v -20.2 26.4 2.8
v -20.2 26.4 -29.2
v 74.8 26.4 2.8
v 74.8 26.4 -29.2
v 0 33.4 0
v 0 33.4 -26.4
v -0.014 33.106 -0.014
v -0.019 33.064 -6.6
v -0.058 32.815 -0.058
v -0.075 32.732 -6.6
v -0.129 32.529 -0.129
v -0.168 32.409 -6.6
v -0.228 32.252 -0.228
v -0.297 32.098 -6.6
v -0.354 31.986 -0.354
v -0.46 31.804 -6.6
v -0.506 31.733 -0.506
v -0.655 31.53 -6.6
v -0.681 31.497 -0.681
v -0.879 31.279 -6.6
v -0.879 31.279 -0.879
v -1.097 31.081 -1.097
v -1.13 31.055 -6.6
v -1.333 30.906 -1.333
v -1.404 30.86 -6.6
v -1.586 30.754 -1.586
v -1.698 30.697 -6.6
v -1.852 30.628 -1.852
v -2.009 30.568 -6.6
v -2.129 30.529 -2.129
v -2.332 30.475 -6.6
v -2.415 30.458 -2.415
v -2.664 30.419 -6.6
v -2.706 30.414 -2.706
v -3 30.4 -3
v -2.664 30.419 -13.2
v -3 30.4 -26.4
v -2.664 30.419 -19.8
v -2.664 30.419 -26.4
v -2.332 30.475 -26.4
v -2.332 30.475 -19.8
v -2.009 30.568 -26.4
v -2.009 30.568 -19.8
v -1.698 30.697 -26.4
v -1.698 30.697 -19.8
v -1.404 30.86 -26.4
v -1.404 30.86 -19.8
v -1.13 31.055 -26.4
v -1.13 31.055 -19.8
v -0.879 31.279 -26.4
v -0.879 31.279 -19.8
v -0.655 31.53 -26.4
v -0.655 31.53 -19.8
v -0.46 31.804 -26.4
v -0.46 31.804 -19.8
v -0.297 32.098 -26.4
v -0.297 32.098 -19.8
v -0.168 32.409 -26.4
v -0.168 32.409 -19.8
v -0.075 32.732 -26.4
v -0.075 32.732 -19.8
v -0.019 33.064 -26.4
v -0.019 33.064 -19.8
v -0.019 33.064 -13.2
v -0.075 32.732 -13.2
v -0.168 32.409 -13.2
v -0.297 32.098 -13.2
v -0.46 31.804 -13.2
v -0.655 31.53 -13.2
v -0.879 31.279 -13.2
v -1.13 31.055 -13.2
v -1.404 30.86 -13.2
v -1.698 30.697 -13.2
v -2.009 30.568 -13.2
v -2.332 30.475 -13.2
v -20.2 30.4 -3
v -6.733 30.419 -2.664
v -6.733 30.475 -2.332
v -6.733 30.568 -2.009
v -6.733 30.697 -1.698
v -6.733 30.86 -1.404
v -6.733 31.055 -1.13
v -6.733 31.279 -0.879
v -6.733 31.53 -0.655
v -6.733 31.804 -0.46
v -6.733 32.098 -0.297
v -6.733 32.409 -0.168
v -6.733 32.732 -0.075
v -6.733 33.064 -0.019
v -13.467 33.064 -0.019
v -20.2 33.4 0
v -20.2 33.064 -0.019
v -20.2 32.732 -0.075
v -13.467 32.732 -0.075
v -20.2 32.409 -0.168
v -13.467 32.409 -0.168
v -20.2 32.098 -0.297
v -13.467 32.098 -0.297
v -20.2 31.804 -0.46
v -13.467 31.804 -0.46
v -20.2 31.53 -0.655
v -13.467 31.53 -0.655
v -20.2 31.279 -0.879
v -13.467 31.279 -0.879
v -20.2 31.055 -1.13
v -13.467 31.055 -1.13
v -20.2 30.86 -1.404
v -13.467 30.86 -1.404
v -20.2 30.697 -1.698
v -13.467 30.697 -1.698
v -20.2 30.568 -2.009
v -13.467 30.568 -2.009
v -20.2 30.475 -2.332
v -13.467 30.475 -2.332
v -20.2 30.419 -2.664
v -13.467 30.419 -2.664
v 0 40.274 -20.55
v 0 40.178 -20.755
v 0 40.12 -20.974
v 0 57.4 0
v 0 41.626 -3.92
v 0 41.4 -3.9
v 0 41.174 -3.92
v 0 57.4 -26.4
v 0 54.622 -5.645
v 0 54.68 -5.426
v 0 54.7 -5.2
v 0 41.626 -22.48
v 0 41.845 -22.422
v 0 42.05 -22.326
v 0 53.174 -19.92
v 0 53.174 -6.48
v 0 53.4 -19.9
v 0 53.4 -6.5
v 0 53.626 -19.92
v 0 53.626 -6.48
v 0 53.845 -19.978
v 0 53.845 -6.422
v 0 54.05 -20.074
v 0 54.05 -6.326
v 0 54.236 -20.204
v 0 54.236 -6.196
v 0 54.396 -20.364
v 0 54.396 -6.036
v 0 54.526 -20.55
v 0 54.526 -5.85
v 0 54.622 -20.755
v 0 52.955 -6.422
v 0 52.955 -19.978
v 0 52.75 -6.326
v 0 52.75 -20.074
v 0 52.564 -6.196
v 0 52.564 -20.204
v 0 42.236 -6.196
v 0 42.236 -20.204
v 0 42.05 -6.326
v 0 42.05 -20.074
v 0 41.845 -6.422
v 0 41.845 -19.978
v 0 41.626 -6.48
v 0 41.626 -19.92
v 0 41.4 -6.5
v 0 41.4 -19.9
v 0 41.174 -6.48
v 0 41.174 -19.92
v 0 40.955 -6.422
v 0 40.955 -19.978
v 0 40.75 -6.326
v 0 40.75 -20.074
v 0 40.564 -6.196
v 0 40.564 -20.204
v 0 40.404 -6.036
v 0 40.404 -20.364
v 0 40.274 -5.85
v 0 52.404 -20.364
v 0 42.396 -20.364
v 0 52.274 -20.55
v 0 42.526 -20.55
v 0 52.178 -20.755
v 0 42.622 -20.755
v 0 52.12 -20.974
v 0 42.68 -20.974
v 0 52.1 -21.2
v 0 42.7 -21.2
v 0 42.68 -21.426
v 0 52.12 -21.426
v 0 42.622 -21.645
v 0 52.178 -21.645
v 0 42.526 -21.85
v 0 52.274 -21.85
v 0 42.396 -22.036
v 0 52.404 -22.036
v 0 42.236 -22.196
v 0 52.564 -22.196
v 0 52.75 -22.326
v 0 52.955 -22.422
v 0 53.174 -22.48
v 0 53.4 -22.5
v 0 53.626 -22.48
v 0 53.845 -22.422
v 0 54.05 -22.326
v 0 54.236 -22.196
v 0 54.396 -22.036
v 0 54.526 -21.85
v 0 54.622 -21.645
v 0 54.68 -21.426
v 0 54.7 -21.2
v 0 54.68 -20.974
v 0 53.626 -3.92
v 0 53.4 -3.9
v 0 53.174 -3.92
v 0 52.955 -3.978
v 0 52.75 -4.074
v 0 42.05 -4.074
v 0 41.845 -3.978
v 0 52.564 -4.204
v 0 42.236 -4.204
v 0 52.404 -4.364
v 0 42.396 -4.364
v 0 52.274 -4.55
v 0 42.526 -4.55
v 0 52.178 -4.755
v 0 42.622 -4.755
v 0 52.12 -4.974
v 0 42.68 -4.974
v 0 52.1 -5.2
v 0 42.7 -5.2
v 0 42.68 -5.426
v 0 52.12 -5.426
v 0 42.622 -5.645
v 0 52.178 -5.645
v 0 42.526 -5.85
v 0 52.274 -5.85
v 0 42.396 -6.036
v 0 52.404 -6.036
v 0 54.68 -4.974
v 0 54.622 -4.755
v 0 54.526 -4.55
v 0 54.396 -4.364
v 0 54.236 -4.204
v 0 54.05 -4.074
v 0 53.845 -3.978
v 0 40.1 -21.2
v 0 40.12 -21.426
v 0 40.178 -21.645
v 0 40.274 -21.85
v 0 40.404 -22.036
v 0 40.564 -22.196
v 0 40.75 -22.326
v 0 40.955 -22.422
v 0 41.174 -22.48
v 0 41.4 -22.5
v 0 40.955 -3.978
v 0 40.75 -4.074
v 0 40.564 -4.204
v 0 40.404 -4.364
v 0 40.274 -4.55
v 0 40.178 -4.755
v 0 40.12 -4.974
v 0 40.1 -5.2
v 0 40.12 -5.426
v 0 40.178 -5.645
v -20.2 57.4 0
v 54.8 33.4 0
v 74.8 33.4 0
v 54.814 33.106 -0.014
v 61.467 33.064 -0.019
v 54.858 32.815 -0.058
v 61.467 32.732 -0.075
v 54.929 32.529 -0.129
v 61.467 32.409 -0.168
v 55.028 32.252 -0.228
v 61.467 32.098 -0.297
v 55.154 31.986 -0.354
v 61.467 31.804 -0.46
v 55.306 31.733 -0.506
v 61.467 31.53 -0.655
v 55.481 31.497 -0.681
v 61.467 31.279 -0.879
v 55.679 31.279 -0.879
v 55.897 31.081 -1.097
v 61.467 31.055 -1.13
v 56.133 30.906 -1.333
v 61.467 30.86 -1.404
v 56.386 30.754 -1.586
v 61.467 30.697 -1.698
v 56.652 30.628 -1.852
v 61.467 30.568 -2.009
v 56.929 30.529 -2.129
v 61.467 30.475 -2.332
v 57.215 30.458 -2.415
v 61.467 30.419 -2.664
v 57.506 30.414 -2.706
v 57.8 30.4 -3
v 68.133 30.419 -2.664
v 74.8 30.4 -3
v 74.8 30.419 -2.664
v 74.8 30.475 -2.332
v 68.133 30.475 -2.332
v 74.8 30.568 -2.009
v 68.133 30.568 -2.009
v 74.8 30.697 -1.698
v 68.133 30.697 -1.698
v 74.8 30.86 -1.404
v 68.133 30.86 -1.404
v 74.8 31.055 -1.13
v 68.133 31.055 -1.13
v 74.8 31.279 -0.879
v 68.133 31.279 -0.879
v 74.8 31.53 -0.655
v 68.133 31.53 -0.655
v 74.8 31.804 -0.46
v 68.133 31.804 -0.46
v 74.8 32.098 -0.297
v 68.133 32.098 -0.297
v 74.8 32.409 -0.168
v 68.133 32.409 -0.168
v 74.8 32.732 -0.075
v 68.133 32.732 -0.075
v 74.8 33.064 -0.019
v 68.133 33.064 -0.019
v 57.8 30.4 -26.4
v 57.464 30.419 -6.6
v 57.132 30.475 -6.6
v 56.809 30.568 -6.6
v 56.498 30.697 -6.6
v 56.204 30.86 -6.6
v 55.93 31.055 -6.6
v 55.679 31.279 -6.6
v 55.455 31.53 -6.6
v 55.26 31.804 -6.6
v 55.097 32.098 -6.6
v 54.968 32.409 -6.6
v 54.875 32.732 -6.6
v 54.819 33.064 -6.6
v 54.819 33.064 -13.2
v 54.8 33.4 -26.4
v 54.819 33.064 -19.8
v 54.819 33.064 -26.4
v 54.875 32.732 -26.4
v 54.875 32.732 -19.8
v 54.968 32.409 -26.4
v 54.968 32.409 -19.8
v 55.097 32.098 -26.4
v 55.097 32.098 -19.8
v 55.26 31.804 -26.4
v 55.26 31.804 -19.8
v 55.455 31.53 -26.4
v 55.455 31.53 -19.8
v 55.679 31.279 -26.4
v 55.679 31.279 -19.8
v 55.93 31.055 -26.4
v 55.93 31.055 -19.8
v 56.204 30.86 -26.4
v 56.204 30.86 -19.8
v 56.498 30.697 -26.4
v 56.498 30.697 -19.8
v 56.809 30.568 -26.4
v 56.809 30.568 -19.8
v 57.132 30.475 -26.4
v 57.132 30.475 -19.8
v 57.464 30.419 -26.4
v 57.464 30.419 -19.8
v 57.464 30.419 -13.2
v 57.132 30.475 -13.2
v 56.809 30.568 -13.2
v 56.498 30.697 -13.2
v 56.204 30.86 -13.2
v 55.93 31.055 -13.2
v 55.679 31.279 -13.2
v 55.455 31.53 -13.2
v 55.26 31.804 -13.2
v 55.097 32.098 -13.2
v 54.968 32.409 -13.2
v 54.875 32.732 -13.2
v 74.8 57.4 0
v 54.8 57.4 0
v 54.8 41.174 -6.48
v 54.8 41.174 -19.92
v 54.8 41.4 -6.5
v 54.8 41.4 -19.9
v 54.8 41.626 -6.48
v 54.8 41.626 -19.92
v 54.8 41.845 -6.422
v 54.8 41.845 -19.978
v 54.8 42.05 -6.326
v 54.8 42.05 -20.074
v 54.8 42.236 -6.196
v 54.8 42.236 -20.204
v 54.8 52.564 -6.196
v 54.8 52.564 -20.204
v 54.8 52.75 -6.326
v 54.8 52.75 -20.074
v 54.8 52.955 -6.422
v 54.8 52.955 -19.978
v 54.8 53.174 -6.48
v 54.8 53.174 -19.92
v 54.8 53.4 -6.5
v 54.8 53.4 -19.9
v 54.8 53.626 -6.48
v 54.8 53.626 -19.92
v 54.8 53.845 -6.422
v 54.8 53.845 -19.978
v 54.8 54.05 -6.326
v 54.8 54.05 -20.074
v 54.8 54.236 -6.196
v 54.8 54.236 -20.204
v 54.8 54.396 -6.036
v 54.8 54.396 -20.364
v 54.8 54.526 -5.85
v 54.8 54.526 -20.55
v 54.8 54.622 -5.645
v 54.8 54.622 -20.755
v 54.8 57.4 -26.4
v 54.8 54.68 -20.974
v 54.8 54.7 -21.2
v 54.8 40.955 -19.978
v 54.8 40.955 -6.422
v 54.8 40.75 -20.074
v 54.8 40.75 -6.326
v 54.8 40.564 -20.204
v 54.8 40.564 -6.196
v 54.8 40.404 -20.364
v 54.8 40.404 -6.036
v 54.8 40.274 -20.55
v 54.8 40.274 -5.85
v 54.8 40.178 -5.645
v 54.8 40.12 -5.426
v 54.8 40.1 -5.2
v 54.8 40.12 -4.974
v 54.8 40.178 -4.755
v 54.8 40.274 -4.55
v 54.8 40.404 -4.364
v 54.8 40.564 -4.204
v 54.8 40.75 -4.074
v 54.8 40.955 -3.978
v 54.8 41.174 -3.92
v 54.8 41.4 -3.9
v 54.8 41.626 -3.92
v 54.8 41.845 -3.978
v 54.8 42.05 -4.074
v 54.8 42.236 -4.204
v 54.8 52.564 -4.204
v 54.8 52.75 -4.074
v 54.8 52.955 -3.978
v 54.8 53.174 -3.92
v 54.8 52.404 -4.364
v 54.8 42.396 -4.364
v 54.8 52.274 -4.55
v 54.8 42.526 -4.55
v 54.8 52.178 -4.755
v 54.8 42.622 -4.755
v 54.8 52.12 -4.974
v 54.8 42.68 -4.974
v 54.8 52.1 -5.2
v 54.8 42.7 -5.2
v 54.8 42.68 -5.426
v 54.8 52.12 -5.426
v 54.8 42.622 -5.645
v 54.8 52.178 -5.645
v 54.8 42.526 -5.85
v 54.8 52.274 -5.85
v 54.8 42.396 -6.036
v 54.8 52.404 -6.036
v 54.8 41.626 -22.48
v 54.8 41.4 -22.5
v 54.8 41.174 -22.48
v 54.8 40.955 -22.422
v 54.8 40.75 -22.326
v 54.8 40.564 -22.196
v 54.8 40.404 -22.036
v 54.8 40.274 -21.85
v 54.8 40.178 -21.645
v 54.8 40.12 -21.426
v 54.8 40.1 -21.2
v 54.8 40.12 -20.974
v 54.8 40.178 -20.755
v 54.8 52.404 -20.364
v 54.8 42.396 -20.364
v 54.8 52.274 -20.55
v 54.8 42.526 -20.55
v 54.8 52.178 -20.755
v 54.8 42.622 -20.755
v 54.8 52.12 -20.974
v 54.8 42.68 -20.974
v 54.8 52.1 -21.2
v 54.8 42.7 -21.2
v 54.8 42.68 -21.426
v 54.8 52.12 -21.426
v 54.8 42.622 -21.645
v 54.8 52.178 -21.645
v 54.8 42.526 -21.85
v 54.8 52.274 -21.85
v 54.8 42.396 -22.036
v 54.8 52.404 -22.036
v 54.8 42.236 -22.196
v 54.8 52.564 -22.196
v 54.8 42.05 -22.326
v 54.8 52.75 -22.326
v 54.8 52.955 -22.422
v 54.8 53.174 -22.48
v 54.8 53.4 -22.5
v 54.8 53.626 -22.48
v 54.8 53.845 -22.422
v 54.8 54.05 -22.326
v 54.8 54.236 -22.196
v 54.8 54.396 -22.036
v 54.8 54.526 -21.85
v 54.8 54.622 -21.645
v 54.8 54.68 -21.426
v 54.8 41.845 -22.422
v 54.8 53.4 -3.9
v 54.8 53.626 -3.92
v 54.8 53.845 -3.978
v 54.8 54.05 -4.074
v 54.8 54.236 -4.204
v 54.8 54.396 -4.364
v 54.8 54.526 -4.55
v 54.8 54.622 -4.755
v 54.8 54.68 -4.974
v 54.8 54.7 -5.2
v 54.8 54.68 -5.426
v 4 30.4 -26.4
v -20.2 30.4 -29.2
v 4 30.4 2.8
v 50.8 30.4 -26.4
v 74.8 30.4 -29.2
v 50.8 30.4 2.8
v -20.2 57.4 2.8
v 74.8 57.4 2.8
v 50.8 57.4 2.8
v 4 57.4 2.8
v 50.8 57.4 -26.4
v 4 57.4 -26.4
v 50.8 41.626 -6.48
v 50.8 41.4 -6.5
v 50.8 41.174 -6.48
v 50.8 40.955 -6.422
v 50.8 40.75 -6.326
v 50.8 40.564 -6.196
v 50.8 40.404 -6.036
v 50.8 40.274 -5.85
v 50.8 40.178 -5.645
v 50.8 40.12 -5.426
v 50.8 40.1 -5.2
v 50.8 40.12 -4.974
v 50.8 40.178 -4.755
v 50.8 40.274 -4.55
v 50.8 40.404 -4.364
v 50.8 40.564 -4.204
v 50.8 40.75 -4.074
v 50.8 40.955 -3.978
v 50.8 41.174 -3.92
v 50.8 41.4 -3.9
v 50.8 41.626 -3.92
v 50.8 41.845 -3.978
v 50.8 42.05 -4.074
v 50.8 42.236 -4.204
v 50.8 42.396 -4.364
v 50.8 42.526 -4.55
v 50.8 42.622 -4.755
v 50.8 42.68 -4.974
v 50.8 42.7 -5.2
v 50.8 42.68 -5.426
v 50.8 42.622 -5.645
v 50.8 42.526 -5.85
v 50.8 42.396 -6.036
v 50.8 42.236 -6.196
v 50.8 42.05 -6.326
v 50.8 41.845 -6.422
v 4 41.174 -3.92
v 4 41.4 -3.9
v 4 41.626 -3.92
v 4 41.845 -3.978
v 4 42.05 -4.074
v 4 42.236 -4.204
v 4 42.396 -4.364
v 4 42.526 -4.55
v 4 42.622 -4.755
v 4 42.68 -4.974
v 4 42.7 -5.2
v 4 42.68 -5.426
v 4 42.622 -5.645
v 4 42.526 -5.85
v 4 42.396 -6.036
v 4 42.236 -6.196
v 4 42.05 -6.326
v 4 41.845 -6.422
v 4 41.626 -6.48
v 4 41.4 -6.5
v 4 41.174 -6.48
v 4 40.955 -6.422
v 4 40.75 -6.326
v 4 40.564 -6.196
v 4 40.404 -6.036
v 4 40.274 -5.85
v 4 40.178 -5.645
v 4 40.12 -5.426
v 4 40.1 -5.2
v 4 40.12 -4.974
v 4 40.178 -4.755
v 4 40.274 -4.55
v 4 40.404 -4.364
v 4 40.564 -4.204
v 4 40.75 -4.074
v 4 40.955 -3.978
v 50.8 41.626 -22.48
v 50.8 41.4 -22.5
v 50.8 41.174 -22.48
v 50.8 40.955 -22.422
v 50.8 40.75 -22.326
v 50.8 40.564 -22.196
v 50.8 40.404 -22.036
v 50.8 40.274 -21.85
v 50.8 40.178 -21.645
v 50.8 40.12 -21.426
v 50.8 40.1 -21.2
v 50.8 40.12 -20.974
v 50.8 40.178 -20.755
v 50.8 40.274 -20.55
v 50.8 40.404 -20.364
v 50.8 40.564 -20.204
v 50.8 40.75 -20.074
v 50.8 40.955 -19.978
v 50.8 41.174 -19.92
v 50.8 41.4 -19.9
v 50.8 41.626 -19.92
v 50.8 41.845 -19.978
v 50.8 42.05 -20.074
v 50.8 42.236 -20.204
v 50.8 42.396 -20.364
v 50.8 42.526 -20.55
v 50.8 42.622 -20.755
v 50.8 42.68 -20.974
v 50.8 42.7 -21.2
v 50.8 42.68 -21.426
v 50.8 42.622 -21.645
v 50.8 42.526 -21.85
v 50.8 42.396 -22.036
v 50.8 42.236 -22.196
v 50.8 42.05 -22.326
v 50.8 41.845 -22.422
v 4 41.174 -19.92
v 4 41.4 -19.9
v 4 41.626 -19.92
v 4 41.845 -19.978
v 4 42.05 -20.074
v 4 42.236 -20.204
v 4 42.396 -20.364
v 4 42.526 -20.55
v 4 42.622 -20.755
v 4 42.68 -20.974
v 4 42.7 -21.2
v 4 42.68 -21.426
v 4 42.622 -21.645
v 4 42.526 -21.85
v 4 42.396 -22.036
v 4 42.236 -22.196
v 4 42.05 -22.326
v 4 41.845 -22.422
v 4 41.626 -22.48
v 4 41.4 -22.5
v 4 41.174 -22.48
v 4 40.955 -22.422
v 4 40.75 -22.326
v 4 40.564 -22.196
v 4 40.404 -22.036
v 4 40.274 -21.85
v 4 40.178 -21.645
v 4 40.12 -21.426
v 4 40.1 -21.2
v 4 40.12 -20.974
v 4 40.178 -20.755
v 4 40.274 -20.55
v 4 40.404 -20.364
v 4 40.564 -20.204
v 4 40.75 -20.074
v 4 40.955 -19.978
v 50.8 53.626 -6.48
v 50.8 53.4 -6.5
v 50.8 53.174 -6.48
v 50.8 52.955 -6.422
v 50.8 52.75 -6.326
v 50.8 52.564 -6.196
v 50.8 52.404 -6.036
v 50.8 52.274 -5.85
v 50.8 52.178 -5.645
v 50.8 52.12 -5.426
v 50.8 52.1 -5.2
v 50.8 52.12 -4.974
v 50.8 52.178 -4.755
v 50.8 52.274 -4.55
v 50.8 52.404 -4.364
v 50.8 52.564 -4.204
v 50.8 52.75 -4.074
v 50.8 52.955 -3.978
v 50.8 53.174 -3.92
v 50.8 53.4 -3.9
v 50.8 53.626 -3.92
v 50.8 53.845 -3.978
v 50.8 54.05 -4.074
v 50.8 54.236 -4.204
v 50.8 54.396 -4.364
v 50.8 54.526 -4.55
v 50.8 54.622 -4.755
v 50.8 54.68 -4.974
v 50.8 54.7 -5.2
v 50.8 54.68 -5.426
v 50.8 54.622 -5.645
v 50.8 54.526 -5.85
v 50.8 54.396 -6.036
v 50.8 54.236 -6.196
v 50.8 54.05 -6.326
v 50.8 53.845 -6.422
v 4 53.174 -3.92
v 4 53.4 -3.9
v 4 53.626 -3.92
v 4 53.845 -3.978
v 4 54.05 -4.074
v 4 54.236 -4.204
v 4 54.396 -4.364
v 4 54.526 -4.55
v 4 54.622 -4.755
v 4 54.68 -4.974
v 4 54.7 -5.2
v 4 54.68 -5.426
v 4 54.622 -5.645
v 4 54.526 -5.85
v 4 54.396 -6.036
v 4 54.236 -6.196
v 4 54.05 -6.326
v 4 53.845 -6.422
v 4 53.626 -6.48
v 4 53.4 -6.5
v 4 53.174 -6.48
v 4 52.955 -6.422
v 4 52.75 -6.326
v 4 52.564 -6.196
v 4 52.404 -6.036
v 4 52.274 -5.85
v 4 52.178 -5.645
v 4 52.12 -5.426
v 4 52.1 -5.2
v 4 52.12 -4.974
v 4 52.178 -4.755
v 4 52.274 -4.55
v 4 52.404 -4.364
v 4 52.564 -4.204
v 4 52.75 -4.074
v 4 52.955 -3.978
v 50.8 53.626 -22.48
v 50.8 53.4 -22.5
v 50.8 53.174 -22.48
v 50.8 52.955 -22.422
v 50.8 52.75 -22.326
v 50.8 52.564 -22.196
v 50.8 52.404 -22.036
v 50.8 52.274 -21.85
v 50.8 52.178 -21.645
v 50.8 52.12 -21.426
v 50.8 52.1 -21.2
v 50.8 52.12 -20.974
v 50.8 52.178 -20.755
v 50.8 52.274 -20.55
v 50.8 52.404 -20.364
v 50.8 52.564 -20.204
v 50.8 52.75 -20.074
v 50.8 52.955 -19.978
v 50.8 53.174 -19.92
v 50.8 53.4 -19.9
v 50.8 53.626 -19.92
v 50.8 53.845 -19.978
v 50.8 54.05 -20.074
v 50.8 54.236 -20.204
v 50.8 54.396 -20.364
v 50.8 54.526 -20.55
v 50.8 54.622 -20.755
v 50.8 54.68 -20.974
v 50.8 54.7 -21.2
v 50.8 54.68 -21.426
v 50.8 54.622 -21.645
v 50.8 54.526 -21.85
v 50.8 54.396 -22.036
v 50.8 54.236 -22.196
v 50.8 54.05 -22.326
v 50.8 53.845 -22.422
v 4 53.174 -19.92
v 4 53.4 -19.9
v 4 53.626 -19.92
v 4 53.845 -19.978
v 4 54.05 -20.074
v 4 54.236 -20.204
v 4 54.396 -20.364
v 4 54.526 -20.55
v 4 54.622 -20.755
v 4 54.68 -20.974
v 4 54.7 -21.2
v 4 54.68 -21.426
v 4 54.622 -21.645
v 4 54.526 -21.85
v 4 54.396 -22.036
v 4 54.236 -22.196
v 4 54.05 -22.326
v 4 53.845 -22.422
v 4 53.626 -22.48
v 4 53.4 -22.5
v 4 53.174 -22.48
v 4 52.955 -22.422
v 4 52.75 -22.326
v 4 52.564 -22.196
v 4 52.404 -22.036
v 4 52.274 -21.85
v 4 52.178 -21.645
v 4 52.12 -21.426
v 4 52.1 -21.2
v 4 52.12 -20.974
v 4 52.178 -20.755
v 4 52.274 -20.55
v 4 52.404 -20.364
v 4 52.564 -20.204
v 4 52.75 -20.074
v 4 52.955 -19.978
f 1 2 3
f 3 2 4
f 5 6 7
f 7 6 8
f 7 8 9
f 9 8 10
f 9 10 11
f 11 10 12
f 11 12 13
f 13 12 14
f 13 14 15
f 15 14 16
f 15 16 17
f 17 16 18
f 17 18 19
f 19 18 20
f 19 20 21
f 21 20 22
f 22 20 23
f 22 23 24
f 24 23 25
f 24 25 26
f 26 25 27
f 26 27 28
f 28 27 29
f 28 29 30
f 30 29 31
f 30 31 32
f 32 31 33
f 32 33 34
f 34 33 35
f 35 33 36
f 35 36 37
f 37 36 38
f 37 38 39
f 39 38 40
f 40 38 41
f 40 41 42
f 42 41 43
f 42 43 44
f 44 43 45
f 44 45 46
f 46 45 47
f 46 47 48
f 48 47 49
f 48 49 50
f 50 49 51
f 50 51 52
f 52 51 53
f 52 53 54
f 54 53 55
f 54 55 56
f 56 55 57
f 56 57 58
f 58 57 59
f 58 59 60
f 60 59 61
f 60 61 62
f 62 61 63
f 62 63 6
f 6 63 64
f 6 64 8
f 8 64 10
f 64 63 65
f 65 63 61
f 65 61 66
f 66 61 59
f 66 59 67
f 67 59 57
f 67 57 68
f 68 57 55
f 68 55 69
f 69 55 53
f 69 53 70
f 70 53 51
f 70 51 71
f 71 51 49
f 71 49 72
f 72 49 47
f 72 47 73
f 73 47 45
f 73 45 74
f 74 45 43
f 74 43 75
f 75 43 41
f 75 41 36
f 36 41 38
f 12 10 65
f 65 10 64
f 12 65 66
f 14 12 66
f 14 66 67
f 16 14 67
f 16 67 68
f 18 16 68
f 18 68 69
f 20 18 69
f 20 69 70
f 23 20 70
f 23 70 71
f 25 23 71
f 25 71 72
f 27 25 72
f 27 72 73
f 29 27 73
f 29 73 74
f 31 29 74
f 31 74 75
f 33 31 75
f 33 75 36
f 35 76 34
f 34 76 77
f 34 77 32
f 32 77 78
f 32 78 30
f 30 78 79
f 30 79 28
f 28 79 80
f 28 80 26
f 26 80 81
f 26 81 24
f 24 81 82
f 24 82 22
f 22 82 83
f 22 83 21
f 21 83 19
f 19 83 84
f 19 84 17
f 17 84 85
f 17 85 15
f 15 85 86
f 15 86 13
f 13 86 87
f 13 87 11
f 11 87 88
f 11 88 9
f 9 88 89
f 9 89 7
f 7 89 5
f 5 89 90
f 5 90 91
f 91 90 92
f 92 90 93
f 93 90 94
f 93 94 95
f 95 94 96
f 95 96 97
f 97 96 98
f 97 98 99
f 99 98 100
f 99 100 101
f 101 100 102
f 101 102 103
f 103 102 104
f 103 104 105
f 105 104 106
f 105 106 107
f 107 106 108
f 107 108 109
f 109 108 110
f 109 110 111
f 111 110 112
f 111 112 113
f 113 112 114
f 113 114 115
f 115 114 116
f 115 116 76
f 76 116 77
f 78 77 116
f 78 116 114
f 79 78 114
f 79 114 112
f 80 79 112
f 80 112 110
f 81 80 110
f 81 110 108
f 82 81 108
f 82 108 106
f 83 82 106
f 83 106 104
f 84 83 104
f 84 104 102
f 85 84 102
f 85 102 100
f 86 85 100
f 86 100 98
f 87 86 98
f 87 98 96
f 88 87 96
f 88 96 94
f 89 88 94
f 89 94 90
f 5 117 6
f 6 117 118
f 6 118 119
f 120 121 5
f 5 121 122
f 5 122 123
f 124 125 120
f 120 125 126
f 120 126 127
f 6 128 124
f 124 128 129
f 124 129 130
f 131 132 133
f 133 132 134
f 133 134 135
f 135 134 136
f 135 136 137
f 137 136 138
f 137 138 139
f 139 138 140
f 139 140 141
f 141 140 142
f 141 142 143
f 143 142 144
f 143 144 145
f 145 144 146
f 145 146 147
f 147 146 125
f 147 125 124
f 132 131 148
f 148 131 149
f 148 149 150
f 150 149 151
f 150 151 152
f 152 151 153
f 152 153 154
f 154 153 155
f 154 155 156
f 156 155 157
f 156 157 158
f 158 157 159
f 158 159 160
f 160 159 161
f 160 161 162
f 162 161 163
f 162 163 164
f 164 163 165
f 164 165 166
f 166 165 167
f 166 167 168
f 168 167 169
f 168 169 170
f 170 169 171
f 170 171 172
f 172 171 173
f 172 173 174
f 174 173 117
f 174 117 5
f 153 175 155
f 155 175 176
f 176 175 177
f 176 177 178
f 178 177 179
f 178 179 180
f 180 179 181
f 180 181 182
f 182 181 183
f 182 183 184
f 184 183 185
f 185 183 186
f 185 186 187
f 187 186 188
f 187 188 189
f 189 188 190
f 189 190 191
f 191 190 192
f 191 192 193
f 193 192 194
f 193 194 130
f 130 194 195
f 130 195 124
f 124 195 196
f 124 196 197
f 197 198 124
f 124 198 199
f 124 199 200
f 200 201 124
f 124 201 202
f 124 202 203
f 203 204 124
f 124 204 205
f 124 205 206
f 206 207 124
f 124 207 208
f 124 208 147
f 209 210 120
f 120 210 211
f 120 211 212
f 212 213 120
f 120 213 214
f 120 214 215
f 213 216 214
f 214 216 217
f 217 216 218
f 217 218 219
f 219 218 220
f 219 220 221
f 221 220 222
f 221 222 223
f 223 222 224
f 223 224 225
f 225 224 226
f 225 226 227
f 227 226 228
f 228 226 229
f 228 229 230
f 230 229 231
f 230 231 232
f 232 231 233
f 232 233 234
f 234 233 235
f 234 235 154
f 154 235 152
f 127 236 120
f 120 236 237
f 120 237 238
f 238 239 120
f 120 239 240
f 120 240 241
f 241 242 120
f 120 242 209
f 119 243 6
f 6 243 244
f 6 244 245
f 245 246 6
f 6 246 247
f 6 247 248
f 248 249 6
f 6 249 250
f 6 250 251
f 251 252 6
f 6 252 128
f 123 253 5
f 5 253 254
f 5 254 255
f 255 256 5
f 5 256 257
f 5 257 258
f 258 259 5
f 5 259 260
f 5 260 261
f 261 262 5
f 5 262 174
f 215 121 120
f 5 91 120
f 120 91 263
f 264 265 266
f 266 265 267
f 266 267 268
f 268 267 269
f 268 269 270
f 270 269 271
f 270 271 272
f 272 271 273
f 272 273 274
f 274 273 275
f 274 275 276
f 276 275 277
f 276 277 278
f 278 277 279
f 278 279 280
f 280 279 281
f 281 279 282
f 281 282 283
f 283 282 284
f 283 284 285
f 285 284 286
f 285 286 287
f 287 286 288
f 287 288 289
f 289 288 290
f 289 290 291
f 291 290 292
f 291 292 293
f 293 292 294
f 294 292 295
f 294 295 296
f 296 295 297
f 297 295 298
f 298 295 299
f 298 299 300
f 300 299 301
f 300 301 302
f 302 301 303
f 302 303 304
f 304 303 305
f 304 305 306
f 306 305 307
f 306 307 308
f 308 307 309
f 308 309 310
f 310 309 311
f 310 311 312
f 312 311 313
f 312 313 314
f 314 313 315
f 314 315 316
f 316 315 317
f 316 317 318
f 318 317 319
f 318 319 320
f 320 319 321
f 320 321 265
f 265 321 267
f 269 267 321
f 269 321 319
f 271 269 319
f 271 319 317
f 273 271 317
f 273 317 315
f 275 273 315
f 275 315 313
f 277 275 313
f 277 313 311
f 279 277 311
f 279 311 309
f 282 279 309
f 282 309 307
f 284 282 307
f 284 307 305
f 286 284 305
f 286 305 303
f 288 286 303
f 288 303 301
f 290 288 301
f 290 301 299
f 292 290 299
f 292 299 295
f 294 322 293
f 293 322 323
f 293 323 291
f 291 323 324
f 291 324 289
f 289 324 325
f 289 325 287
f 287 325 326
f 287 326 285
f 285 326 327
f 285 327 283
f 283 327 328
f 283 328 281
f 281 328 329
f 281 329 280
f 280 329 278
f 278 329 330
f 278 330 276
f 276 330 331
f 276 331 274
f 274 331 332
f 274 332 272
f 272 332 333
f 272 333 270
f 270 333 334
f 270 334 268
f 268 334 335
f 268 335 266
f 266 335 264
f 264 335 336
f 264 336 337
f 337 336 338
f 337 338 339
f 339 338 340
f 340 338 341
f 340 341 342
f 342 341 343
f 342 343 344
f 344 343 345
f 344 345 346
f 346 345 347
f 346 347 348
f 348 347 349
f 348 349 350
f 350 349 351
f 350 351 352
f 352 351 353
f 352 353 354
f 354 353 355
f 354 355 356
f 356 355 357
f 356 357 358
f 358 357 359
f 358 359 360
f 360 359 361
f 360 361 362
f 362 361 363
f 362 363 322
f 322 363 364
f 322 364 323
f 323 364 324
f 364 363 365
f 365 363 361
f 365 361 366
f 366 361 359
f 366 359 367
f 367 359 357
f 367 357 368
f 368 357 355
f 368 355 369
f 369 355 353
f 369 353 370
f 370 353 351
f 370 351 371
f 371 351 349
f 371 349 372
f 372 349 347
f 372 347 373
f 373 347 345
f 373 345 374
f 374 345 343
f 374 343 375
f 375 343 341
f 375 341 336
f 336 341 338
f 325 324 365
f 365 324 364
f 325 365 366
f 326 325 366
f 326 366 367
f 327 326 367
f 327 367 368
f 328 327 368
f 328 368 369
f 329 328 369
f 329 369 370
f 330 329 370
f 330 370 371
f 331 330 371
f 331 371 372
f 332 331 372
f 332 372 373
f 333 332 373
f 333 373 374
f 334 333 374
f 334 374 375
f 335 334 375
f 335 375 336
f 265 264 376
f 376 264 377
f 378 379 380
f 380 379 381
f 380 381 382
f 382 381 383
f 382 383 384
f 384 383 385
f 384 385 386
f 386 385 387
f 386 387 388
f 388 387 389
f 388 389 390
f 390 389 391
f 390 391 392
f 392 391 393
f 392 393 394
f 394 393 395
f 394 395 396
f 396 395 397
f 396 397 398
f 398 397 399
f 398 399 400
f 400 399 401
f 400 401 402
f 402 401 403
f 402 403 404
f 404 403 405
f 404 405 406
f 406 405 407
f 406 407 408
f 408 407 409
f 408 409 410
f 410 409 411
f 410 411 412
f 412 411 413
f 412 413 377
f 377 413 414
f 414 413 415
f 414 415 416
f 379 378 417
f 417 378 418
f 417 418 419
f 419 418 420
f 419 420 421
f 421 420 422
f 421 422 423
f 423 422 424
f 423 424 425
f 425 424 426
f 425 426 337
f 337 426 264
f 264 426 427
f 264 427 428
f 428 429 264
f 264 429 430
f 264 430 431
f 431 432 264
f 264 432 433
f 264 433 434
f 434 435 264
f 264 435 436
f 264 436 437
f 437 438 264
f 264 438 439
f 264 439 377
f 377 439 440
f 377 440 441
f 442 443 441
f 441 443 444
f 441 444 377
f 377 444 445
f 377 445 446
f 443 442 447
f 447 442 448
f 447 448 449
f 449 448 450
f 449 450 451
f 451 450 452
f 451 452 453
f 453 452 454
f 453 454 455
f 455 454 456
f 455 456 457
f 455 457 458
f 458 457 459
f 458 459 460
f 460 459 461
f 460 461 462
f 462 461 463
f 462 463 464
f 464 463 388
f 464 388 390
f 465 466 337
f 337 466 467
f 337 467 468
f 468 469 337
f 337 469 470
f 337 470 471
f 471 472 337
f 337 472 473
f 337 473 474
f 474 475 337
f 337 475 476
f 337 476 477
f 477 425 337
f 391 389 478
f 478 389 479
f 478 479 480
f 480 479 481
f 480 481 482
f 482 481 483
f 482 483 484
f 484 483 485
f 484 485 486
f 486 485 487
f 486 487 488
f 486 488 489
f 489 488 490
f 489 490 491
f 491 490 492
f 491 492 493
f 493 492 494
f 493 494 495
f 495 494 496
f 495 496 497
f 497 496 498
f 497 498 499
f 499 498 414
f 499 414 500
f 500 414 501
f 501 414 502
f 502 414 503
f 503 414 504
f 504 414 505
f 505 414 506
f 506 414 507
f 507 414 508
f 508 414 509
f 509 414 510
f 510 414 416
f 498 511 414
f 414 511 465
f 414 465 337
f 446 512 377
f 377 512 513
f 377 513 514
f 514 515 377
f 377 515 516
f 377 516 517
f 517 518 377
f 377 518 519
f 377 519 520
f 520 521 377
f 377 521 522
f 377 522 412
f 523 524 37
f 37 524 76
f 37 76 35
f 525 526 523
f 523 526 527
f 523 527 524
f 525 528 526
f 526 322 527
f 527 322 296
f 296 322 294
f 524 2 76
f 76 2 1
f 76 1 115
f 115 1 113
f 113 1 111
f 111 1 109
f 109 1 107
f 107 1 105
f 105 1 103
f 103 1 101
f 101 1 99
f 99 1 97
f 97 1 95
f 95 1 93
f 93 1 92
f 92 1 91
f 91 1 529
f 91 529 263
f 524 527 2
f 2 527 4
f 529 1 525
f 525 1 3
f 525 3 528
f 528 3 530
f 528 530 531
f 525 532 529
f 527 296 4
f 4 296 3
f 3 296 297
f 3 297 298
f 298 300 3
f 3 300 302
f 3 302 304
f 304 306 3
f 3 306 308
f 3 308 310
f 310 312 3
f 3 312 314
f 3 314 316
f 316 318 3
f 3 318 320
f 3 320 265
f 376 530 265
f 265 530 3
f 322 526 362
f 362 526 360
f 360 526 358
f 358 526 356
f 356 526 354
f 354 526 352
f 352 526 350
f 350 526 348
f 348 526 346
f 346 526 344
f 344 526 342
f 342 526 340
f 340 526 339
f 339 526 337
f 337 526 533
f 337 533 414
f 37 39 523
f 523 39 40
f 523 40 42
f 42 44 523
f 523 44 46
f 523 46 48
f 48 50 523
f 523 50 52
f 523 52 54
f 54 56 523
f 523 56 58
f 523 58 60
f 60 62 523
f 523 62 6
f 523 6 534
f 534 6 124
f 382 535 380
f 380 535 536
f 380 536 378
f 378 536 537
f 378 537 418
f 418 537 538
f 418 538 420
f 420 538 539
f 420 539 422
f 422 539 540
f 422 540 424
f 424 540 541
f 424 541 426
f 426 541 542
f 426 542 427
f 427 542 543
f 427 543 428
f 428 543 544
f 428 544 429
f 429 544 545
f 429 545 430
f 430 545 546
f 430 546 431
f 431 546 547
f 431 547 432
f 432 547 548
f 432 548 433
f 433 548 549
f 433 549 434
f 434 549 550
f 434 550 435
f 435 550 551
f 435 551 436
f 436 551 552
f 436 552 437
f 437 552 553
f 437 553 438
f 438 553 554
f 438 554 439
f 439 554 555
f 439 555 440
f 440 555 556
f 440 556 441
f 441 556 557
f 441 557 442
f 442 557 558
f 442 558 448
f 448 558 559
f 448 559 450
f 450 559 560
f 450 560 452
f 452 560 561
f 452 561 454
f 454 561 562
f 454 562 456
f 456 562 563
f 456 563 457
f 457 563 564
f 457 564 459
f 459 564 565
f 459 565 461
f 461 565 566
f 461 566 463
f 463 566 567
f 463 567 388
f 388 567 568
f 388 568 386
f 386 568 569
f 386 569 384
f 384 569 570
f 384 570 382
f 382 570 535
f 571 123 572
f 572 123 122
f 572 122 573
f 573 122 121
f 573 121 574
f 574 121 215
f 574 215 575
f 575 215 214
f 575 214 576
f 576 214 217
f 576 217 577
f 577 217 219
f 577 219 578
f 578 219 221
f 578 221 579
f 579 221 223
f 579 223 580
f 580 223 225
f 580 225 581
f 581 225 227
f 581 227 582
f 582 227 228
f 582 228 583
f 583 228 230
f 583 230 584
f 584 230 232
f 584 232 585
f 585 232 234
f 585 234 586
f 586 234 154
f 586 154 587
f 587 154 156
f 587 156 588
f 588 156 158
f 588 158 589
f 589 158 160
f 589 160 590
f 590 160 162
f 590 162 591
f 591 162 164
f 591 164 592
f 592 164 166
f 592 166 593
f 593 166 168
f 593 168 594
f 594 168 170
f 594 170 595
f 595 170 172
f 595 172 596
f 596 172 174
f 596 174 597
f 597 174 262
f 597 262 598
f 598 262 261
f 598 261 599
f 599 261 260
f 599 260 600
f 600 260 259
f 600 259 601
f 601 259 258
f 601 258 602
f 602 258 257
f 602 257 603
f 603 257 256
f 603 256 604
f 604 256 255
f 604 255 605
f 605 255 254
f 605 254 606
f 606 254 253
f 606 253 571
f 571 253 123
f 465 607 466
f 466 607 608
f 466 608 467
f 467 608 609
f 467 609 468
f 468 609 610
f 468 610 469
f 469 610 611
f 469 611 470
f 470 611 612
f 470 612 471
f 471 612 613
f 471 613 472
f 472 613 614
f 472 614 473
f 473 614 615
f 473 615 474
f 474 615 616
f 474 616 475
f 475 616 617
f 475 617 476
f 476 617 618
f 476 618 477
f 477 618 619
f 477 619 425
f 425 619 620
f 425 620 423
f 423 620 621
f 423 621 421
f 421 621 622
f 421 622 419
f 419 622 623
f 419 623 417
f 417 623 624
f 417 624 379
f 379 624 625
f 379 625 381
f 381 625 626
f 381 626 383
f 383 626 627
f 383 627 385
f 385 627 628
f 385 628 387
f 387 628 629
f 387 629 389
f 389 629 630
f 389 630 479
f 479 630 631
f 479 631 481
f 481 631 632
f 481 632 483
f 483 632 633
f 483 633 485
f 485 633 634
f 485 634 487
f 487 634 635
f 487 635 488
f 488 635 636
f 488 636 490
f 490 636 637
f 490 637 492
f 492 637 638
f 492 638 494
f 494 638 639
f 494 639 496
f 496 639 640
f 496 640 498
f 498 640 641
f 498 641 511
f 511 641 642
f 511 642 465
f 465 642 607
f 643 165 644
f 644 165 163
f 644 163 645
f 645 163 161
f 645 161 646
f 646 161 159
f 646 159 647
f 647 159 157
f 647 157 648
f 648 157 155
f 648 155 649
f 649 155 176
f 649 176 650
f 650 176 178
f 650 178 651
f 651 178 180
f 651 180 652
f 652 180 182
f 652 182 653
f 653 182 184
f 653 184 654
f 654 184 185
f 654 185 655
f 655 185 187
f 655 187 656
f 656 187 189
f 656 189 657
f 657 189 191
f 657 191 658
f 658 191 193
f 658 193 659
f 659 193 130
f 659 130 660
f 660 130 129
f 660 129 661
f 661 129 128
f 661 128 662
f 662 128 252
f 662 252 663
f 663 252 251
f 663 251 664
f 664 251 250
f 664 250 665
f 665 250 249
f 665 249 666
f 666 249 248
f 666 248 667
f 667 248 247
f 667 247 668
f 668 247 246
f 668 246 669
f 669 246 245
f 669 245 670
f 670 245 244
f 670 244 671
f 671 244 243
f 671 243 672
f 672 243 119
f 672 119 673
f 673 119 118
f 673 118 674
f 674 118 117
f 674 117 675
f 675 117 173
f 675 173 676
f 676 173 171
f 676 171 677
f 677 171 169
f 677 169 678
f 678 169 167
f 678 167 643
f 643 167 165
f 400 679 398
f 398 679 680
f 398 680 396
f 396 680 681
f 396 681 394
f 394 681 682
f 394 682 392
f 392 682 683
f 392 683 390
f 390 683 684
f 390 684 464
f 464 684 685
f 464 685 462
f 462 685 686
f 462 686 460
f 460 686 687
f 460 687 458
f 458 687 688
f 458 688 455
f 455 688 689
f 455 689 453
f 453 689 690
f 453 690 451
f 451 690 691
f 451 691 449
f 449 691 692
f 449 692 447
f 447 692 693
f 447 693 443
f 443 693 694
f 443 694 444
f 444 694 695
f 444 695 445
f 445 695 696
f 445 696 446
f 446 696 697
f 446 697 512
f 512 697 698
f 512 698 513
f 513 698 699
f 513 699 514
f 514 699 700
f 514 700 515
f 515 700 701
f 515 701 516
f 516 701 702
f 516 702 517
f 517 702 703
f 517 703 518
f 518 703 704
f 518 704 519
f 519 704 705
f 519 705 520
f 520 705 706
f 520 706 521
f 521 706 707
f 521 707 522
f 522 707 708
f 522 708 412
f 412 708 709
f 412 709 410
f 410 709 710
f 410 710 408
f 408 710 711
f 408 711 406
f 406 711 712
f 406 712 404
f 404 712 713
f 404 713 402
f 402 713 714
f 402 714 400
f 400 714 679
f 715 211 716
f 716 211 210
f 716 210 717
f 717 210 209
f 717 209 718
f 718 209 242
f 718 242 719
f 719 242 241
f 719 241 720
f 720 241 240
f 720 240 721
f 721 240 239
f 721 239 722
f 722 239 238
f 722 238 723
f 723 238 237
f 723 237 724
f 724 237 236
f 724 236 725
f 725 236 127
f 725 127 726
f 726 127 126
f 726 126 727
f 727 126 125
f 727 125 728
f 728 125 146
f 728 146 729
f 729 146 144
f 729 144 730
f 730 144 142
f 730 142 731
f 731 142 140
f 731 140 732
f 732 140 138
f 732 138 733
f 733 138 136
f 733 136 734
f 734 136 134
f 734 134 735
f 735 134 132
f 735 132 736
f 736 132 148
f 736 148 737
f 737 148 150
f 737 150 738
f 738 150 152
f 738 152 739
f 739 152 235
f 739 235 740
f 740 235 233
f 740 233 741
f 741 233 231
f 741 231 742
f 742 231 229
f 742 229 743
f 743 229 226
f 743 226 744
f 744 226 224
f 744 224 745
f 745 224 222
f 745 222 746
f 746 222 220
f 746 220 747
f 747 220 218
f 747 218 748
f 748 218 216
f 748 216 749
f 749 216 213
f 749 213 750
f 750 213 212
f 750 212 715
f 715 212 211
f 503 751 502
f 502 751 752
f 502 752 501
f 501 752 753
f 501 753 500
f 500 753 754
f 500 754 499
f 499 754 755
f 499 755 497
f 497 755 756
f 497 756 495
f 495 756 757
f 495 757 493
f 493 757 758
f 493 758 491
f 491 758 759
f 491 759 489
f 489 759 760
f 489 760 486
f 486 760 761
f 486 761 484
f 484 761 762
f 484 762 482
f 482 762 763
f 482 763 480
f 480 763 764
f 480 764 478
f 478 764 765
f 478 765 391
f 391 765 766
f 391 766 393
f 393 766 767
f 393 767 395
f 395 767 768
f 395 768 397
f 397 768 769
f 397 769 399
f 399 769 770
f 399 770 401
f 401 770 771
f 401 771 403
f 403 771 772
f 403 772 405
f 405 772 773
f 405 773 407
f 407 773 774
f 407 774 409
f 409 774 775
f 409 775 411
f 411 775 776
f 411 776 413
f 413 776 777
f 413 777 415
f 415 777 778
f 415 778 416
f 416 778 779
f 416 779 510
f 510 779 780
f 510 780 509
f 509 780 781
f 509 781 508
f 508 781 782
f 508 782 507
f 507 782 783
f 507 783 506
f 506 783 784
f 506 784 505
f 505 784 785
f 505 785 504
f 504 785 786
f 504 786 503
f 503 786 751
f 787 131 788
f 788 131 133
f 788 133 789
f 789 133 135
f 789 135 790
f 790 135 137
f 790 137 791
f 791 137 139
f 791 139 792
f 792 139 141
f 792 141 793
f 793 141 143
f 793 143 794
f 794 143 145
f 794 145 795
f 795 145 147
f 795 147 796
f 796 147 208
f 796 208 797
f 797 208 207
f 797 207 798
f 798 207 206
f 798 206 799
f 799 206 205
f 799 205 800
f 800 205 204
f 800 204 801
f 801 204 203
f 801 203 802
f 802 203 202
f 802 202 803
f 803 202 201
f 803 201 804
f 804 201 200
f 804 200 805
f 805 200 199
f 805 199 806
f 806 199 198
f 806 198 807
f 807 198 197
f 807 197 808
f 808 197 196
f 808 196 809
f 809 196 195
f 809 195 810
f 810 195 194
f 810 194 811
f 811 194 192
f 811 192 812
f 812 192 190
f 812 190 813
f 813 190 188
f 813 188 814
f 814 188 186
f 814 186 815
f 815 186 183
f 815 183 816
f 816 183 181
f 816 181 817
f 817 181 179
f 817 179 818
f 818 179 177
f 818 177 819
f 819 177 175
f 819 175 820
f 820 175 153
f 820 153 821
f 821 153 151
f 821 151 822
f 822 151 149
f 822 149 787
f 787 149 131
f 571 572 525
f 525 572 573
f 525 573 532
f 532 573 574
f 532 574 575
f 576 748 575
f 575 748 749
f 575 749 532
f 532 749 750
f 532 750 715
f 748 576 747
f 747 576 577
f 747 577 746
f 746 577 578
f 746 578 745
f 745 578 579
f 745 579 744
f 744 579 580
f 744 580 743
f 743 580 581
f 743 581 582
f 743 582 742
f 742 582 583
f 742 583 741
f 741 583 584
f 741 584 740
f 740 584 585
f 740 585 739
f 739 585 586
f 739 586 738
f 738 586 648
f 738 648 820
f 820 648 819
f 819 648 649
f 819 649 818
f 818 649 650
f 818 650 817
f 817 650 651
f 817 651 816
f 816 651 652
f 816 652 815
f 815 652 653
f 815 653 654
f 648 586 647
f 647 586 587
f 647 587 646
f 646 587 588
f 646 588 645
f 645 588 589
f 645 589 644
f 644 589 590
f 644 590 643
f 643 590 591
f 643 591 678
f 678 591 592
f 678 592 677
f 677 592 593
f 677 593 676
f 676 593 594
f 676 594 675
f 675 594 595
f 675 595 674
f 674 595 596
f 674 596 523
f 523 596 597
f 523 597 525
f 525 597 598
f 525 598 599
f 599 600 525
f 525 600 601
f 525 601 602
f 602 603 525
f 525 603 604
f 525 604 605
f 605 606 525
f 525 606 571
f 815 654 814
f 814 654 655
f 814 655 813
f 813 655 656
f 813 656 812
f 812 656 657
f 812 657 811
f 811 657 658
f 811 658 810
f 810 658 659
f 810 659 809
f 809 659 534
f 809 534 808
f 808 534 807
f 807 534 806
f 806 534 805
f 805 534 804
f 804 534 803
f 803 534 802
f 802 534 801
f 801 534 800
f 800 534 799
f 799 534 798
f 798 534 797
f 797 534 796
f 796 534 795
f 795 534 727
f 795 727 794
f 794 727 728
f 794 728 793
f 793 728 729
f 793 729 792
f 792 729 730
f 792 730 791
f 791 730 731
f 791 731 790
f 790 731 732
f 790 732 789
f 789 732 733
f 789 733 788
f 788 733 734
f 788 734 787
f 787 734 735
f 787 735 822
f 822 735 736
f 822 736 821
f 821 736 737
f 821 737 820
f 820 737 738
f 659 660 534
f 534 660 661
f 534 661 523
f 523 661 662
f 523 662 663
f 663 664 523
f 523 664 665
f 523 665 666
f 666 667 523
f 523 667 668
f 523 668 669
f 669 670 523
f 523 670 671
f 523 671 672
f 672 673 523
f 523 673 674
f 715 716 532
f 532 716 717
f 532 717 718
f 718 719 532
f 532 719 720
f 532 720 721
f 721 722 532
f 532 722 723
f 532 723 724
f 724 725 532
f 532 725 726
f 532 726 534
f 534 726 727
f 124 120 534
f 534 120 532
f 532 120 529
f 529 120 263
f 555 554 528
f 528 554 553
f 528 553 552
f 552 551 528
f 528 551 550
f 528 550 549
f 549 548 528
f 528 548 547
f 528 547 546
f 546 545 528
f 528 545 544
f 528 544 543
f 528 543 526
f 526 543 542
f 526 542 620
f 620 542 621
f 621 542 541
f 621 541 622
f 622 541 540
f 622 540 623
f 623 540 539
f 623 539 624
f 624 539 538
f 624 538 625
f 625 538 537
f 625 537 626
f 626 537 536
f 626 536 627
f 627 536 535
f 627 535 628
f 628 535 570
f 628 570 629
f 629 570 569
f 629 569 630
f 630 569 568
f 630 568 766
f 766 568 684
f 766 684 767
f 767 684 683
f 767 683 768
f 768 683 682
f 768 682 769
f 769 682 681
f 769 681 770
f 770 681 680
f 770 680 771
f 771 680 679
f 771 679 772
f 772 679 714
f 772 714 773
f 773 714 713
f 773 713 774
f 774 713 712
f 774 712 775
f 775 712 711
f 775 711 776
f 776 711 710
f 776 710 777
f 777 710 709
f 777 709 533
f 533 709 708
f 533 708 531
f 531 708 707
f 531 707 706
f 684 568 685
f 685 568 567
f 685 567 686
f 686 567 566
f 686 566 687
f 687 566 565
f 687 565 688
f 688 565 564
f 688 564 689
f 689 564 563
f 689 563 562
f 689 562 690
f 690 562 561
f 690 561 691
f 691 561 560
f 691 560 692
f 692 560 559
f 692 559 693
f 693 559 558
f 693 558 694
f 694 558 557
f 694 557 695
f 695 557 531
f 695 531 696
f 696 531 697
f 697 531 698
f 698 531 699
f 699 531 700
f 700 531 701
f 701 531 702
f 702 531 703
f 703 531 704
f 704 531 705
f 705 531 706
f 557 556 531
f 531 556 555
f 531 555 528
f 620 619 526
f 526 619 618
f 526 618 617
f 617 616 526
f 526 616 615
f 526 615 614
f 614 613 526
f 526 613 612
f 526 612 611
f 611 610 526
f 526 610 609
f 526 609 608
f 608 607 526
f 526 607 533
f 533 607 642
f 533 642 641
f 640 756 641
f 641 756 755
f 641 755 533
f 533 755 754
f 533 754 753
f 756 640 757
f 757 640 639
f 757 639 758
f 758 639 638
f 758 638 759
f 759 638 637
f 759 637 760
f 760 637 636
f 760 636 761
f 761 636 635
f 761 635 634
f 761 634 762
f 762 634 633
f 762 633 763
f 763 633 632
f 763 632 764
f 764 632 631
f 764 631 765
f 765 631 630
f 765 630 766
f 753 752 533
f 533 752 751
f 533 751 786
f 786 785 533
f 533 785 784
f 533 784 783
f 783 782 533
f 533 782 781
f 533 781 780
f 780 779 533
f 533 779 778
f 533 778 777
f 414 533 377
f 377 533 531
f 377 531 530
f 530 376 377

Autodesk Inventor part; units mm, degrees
ref_plane "YZ Plane" through (0, 0, 0) normal (1, 0, 0) x (0, 1, 0)
ref_plane "XZ Plane" through (0, 0, 0) normal (0, 1, 0) x (-1, 0, 0)
ref_plane "XY Plane" through (0, 0, 0) normal (0, 0, 1) x (1, 0, 0)
sketch "Sketch2" plane through (0, 0, 0) normal (1, 0, 0) x (0, 1, 0)
  line L0 (26.4, -3) -> (6, -3)
  line L1 (6, -3) -> (6, -23.4)
  line L2 (6, -23.4) -> (26.4, -23.4)
  line L3 (26.4, -23.4) -> (26.4, -3)
  line L4 (30.4, 0) -> (0, 0)
  line L5 (30.4, -26.4) -> (30.4, 0)
  line L6 (0, 0) -> (0, -26.4)
  line L7 (30.4, -26.4) -> (0, -26.4)
  line L8 (6, -11) -> (0, -11)
  line L9 (0, -11) -> (0, -15.4)
  line L10 (0, -15.4) -> (6, -15.4)
  line L11 (6, -15.4) -> (6, -11)
  point P0 (0, -11)
  dimension "d5" = 20.4
  dimension "d6" = 20.4
  dimension "d8" = 6
  dimension "d22" = 4
  dimension "d23" = 3
  dimension "d24" = 3
  dimension "d27" = 8
  dimension "d28" = 8
extrude "Extrusion1" add sketch "Sketch2" along normal blind 54.8 contours L0 L1 L8 L6 L4 L5 L7 L10 L2 L3
sketch "Sketch13" plane through (0, 30.4, 0) normal (0, 1, 0) x (1, 0, 0)
  line L0 (0, 0) -> (54.8, 0) projected
  line L1 (0, 26.4) -> (54.8, 26.4) projected
  line L2 (54.8, 0) -> (50.8, 0)
  line L3 (50.8, 0) -> (50.8, 26.4)
  line L4 (50.8, 26.4) -> (54.8, 26.4)
  line L5 (54.8, 26.4) -> (54.8, 0)
  line L6 (4, 0) -> (0, 0)
  line L7 (0, 0) -> (0, 26.4)
  line L8 (0, 26.4) -> (4, 26.4)
  line L9 (4, 26.4) -> (4, 0)
  line L10 (0, 26.4) -> (0, 0) projected
  point P0 (0, 0)
  point P1 (69.8, 0)
  point P2 (69.8, 26.4)
  point P3 (4, 0)
  point P4 (54.8, 26.4)
  point P5 (50.8, 0)
  dimension "d75" = 4
  dimension "d76" = 4
  dimension "d77" = 46.8
extrude "Extrusion11" add sketch "Sketch13" along normal blind 27 contours L7 L1 L9 L0 | L3 L1 L5 L0
sketch "Sketch14" plane through (54.8, 30.4, 0) normal (1, 0, 0) x (0, 0, -1)
  circle A0 centre (5.2, 11) radius 1.3
  circle A1 centre (5.2, 23) radius 1.3
  line L0 (0, -30.4) -> (0, 27) projected
  circle A2 centre (21.2, 23) radius 1.3
  circle A3 centre (21.2, 11) radius 1.3
  line L1 (26.4, -30.4) -> (26.4, 27) projected
  line L2 (0, 0) -> (26.4, 0) projected
  point P0 (26.4, -4)
  dimension "d80" = 2.6
  dimension "d82" = 2.6
  dimension "d86" = 2.6
  dimension "d87" = 2.6
  dimension "d95" = 16
  dimension "d96" = 16
  dimension "d97" = 5.2
  dimension "d98" = 5.2
  dimension "d99" = 5.2
  dimension "d100" = 5.2
  dimension "d101" = 11
  dimension "d102" = 23
extrude "Extrusion12" cut sketch "Sketch14" against normal blind 100
ref_plane "Work Plane1" through (0, 0, -13.2) normal (0, 0, 1) x (1, 0, 0)
sketch "Sketch15" plane through (54.8, 0, 0) normal (1, 0, 0) x (0, 0, -1)
  line L0 (3, 26.4) -> (23.4, 26.4) projected
  line L1 (26.4, 30.4) -> (0, 30.4) projected
  line L2 (0, 30.4) -> (26.4, 30.4) projected
  line L3 (-2.8, 30.4) -> (29.2, 30.4)
  line L4 (29.2, 30.4) -> (29.2, 26.4)
  line L5 (29.2, 26.4) -> (-2.8, 26.4)
  line L6 (-2.8, 26.4) -> (-2.8, 30.4)
  line L7 (13.2, -11.48) -> (13.2, 68.88) projected
  line L8 (3, 26.4) -> (23.4, 26.4) projected
  point P0 (0, 0)
  point P1 (13.2, 30.4)
  point P2 (0, 30.4)
  dimension "d103" = 32
extrude "Extrusion13" add sketch "Sketch15" along normal blind 20 and the other way blind 75
sketch "Sketch16" plane through (-20.2, 30.4, 2.8) normal (0, 1, 0) x (1, 0, 0)
  line L0 (0, 32) -> (0, 0) projected
  line L1 (95, 0) -> (95, 32) projected
  line L2 (0, 0) -> (95, 0)
  line L3 (95, 0) -> (95, 2.8)
  line L4 (95, 2.8) -> (0, 2.8)
  line L5 (0, 2.8) -> (0, 0)
  line L6 (24.2, 29.2) -> (20.2, 29.2) projected
  line L7 (20.2, 29.2) -> (20.2, 2.8) projected
  line L8 (20.2, 2.8) -> (24.2, 2.8) projected
  line L9 (24.2, 2.8) -> (24.2, 29.2) projected
  line L10 (75, 29.2) -> (71, 29.2) projected
  line L11 (71, 29.2) -> (71, 2.8) projected
  line L12 (71, 2.8) -> (75, 2.8) projected
  line L13 (75, 2.8) -> (75, 29.2) projected
  line L14 (0, 0) -> (95, 0) projected
  line L15 (24.2, 2.8) -> (71, 2.8)
  line L16 (71, 2.8) -> (71, 0)
  line L17 (71, 0) -> (24.2, 0)
  line L18 (24.2, 0) -> (24.2, 2.8)
  point P0 (20.2, 2.8)
  point P1 (71, 2.8)
extrude "Extrusion14" add sketch "Sketch16" along normal blind 27 contours L4 L18 L2 L0 | L16 L4 L1 L2
fillet "Fillet5" radius 3 4 edges at (54.8, 30.4, -13.2) (64.8, 30.4, 0) (0, 30.4, -13.2) (-10.1, 30.4, 0)
sketch "Sketch17" plane through (54.8, 0, 0) normal (1, 0, 0) x (0, 0, -1)
  line L0 (-14.3714, 26.4) -> (47.2508, 26.4)
  line L1 (47.2508, 26.4) -> (47.2508, -4.9204)
  line L2 (47.2508, -4.9204) -> (-14.3714, -4.9204)
  line L3 (-14.3714, -4.9204) -> (-14.3714, 26.4)
  line L4 (-2.8, 26.4) -> (29.2, 26.4) projected
  point P0 (0, 0)
extrude "Extrusion15" cut sketch "Sketch17" against normal blind 100
equation "\"d98\" = d97"
properties part number "Motor_test_mount"
